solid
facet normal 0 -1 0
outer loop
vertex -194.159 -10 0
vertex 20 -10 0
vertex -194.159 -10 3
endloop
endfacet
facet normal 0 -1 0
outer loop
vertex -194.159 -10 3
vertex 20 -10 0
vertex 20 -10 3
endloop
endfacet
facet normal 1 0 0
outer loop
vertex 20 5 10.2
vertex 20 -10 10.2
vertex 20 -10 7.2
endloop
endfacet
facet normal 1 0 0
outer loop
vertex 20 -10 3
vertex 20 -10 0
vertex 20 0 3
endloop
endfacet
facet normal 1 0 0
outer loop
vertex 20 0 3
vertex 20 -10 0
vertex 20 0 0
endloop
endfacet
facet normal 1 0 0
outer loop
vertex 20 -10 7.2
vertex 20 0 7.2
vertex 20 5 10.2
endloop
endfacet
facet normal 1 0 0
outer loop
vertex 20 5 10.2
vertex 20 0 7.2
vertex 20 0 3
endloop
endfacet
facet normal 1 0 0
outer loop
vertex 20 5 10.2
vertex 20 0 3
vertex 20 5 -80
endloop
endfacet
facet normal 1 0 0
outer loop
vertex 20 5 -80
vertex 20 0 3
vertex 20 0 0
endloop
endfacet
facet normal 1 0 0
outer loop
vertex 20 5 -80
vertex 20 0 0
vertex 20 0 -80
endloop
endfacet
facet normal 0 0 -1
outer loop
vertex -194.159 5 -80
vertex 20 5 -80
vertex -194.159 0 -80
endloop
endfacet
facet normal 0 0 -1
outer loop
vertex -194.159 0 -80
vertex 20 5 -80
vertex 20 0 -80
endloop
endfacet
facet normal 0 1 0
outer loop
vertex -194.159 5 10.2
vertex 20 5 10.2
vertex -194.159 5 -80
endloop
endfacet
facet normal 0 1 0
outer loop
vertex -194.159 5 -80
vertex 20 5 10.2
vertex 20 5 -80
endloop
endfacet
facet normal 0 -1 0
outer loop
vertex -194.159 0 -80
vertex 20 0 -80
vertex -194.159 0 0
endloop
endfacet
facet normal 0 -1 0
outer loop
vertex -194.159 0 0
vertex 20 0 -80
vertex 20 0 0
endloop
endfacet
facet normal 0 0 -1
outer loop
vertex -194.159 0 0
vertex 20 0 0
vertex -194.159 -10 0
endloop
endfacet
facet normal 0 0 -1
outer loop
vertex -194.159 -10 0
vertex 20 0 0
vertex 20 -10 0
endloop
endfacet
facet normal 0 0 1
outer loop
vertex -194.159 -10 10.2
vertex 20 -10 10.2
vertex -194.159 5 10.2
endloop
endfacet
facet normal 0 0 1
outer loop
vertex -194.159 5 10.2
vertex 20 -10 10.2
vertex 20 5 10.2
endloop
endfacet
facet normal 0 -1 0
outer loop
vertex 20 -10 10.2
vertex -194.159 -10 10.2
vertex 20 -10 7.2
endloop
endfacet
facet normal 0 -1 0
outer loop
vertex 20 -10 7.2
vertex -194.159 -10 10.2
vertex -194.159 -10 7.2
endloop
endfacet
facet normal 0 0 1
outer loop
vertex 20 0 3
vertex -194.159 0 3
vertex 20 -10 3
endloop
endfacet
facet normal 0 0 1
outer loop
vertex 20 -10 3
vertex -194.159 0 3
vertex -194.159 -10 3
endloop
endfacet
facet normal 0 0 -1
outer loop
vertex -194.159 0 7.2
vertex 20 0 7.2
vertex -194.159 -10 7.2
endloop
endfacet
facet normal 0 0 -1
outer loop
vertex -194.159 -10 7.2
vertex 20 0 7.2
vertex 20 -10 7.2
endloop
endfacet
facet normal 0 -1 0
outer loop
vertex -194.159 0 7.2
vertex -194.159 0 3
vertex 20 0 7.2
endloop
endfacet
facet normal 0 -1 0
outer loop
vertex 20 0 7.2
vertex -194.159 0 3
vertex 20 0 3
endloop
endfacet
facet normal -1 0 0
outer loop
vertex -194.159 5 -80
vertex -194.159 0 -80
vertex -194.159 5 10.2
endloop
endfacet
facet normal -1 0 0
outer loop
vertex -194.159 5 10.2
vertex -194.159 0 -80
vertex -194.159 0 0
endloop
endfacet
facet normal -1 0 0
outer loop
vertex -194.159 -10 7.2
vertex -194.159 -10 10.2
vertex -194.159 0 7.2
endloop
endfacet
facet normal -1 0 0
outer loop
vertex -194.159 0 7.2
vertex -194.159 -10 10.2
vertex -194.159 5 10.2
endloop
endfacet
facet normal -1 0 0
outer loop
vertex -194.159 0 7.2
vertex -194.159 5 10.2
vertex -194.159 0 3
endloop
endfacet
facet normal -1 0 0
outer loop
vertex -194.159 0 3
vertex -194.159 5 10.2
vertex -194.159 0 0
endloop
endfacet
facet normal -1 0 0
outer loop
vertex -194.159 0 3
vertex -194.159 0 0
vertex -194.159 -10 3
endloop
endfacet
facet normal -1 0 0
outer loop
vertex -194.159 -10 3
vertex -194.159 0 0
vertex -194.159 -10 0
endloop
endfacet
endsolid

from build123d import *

# Parameters (mm, degrees)
SKETCH1_W                = 20
SKETCH1_H                = 80
BOSS_EXTRUDE1_DEPTH      = 5
BOSS_EXTRUDE2_DEPTH      = 10
BOSS_EXTRUDE2_DEPTH_BACK = 5
SKETCH2_W                = 20
SKETCH2_H                = 10.2
SKETCH3_W                = 20
SKETCH3_H                = 4.2
CUT_EXTRUDE1_DEPTH       = 10
BOSS_EXTRUDE3_DEPTH      = 194.158928137


with BuildPart() as part:
    # Sketch1 → Boss-Extrude1 (new body)
    with BuildSketch(Plane(origin=(0, 0, 0), x_dir=(1, 0, 0), z_dir=(0, 1, 0))):
        with Locations((10, 40)):
            Rectangle(SKETCH1_W, SKETCH1_H)
    extrude(amount=BOSS_EXTRUDE1_DEPTH)

    # Sketch2 → Boss-Extrude2 (add, two sides: drawn at the far end of the back side and taken through both)
    with BuildSketch(Plane.XZ.offset(-BOSS_EXTRUDE2_DEPTH_BACK)):
        with Locations((10, 5.1)):
            Rectangle(SKETCH2_W, SKETCH2_H)
    extrude(amount=BOSS_EXTRUDE2_DEPTH + BOSS_EXTRUDE2_DEPTH_BACK)

    # Sketch3 → Cut-Extrude1 (cut)
    with BuildSketch(Plane.XZ.offset(10)):
        with Locations((10, 5.1)):
            Rectangle(SKETCH3_W, SKETCH3_H)
    extrude(amount=-CUT_EXTRUDE1_DEPTH, mode=Mode.SUBTRACT)

    # Sketch5 → Boss-Extrude3 (add)
    with BuildSketch(Plane.ZY):
        Polygon((3, 0), (7.2, 0), (7.2, 5), (-80, 5), (-80, 0), (0, 0), (0, -10), (3, -10), align=None)
        Polygon((7.2, -10), (10.2, -10), (10.2, 5), (7.2, 5), (7.2, 0), align=None)
    extrude(amount=BOSS_EXTRUDE3_DEPTH)


solid = part.part
